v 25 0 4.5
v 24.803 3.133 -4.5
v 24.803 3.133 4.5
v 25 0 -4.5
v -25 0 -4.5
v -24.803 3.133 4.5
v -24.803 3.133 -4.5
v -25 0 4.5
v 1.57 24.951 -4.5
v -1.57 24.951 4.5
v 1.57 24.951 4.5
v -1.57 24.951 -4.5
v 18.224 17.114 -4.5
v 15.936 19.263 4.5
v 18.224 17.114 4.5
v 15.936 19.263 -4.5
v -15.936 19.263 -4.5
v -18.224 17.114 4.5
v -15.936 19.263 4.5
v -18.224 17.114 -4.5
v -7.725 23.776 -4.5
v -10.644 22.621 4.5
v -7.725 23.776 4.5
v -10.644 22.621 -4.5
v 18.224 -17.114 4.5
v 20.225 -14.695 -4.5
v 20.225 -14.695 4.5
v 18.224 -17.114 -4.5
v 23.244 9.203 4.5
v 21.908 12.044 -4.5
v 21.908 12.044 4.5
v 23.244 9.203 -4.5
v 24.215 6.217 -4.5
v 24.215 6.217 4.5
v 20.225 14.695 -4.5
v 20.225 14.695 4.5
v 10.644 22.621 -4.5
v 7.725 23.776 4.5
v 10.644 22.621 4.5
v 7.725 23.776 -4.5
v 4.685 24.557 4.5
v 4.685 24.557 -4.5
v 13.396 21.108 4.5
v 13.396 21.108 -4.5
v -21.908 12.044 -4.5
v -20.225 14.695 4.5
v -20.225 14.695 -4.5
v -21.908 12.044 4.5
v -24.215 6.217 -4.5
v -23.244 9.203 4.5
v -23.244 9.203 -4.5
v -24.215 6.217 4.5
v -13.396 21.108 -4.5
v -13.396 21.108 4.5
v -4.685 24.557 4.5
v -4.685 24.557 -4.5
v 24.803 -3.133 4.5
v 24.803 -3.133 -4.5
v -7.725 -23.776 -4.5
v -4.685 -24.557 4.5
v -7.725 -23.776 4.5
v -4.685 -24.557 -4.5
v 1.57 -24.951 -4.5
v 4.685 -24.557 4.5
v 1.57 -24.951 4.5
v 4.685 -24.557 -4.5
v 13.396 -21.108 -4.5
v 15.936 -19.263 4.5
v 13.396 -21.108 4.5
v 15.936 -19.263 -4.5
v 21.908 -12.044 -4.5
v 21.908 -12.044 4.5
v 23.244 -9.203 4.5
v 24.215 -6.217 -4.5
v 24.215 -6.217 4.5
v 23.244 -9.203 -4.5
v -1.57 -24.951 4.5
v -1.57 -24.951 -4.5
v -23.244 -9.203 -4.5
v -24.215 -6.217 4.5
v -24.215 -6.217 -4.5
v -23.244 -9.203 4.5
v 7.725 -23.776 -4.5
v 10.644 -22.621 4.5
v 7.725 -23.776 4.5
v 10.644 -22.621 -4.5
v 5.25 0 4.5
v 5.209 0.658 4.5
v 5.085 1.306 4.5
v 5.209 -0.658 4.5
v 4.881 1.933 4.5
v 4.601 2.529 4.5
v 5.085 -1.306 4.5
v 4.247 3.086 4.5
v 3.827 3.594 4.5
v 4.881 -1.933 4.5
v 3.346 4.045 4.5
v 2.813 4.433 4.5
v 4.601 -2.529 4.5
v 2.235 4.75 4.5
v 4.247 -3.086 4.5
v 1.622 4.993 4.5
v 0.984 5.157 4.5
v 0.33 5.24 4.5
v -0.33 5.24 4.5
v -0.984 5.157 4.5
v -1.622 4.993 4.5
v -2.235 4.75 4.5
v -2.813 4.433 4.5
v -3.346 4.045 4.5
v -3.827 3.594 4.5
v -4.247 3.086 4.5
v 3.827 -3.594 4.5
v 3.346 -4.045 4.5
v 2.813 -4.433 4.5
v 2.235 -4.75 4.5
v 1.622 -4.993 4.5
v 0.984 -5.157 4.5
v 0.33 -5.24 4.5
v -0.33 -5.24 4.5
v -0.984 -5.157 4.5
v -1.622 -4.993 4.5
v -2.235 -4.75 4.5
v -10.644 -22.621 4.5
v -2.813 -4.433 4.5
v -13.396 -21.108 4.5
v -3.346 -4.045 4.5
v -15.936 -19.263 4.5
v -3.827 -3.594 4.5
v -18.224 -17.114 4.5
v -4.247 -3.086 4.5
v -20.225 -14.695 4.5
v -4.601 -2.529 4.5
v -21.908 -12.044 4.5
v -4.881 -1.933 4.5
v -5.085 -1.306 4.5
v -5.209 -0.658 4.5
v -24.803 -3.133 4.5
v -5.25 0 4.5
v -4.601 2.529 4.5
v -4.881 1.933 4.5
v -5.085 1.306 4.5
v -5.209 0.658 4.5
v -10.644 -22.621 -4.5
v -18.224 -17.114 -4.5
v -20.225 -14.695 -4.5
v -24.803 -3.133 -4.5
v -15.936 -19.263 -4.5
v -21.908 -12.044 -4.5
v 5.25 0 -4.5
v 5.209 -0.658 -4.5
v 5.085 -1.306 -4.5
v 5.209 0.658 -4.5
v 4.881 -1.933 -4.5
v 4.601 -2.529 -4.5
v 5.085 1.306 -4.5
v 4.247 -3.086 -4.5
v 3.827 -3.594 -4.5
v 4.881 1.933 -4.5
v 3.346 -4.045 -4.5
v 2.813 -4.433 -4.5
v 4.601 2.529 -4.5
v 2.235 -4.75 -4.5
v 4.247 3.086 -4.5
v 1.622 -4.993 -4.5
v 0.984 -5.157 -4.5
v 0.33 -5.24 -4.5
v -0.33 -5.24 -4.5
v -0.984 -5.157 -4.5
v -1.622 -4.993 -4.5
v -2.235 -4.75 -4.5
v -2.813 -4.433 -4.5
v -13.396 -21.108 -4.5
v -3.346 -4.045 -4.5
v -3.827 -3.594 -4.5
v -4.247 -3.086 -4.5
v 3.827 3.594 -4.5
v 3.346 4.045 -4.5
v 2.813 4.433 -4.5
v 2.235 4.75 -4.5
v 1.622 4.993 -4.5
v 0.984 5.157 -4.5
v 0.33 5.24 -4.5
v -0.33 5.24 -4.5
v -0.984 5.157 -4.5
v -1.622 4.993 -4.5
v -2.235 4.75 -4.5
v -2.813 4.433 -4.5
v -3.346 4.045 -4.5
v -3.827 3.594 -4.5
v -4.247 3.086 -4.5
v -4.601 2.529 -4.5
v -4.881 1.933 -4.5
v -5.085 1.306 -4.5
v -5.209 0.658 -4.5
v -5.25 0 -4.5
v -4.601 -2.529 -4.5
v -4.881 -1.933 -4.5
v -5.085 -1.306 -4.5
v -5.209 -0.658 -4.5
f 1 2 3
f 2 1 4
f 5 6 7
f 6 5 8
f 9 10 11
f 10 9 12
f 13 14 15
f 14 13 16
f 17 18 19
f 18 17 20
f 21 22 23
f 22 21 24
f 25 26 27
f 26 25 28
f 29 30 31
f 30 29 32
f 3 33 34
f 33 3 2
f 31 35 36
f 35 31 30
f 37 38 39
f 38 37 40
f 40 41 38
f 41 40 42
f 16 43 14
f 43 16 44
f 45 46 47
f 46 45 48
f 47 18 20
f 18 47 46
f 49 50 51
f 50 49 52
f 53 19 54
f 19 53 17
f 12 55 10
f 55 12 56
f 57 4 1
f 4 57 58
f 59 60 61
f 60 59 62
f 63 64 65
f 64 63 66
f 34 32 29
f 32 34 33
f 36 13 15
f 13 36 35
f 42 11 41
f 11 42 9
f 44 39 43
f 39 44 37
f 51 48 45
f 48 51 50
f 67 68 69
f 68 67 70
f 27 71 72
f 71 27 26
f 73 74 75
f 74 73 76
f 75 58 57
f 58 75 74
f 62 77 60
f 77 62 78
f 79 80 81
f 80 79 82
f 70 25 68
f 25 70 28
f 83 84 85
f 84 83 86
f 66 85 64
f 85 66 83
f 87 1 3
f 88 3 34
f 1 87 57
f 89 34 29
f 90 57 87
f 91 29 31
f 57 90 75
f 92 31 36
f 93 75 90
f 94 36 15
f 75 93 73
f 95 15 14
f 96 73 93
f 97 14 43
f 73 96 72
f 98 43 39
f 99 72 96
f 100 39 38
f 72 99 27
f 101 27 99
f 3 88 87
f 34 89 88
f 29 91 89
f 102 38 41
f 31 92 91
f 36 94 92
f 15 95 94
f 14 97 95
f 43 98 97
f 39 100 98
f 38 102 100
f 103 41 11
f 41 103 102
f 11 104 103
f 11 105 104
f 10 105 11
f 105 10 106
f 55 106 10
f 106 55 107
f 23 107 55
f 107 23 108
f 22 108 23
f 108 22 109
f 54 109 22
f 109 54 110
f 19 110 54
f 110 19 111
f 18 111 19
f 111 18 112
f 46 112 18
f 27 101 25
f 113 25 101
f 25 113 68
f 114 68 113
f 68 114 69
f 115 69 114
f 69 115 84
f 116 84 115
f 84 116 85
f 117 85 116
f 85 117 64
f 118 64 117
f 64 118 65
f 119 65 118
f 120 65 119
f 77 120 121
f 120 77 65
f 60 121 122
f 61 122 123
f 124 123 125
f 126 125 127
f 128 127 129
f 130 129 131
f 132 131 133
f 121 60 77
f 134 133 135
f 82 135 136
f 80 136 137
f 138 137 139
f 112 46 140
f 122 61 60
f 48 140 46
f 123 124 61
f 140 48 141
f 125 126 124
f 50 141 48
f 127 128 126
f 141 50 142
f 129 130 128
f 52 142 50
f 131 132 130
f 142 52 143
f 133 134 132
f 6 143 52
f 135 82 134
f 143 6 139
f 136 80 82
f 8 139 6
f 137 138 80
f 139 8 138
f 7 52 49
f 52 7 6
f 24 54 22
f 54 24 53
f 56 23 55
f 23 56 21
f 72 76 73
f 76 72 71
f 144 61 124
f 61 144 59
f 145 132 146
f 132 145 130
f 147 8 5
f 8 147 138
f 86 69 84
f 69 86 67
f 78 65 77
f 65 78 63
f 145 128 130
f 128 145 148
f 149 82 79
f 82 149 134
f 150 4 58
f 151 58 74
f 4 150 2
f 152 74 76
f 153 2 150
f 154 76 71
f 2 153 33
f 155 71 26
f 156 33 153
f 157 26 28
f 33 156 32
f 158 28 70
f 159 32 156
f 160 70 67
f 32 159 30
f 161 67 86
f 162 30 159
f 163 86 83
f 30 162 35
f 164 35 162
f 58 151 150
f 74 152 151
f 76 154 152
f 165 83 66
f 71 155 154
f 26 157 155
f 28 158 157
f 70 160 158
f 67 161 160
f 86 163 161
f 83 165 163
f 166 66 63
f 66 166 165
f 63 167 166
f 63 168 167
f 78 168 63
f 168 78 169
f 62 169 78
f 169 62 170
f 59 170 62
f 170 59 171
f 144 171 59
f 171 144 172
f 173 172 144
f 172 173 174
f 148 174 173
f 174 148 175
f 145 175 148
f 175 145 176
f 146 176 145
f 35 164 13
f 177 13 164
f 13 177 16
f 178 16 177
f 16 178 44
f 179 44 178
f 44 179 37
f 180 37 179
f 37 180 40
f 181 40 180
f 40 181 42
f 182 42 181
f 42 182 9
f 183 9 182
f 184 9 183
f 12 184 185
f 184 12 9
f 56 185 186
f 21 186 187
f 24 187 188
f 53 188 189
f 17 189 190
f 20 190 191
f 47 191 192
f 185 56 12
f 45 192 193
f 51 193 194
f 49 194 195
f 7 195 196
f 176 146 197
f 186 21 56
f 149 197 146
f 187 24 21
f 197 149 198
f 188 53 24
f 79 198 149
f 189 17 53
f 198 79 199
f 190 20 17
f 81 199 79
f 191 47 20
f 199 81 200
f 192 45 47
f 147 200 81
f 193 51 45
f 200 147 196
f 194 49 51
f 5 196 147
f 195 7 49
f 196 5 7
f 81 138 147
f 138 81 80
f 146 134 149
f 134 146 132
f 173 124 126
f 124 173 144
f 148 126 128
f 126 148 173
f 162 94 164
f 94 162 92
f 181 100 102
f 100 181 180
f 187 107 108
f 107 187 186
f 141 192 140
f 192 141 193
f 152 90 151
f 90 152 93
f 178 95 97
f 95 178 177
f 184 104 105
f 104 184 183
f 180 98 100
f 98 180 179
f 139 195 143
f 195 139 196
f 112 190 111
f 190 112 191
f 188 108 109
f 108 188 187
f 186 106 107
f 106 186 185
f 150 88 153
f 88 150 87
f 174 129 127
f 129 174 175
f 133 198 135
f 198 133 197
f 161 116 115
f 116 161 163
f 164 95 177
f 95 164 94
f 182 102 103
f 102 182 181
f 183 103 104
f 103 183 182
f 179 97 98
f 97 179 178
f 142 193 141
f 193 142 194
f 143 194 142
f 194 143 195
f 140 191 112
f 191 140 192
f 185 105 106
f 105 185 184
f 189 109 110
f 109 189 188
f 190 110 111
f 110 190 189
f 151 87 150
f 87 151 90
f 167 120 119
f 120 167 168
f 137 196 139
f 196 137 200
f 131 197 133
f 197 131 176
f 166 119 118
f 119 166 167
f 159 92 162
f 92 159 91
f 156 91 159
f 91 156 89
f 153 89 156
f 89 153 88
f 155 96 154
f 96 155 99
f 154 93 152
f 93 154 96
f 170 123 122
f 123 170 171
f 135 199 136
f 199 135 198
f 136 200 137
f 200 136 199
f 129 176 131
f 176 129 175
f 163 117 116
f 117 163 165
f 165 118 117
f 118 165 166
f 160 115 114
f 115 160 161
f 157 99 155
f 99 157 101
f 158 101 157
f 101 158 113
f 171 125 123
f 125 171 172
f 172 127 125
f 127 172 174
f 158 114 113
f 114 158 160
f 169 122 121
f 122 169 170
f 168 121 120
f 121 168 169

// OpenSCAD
$fn = 50;


difference() {
	union() {
		translate(v = [0, 0, -4.5000000000]) {
			cylinder(h = 9, r = 25.0000000000);
		}
	}
	union() {
		translate(v = [0, 0, -100.0000000000]) {
			cylinder(h = 200, r = 5.2500000000);
		}
	}
}
